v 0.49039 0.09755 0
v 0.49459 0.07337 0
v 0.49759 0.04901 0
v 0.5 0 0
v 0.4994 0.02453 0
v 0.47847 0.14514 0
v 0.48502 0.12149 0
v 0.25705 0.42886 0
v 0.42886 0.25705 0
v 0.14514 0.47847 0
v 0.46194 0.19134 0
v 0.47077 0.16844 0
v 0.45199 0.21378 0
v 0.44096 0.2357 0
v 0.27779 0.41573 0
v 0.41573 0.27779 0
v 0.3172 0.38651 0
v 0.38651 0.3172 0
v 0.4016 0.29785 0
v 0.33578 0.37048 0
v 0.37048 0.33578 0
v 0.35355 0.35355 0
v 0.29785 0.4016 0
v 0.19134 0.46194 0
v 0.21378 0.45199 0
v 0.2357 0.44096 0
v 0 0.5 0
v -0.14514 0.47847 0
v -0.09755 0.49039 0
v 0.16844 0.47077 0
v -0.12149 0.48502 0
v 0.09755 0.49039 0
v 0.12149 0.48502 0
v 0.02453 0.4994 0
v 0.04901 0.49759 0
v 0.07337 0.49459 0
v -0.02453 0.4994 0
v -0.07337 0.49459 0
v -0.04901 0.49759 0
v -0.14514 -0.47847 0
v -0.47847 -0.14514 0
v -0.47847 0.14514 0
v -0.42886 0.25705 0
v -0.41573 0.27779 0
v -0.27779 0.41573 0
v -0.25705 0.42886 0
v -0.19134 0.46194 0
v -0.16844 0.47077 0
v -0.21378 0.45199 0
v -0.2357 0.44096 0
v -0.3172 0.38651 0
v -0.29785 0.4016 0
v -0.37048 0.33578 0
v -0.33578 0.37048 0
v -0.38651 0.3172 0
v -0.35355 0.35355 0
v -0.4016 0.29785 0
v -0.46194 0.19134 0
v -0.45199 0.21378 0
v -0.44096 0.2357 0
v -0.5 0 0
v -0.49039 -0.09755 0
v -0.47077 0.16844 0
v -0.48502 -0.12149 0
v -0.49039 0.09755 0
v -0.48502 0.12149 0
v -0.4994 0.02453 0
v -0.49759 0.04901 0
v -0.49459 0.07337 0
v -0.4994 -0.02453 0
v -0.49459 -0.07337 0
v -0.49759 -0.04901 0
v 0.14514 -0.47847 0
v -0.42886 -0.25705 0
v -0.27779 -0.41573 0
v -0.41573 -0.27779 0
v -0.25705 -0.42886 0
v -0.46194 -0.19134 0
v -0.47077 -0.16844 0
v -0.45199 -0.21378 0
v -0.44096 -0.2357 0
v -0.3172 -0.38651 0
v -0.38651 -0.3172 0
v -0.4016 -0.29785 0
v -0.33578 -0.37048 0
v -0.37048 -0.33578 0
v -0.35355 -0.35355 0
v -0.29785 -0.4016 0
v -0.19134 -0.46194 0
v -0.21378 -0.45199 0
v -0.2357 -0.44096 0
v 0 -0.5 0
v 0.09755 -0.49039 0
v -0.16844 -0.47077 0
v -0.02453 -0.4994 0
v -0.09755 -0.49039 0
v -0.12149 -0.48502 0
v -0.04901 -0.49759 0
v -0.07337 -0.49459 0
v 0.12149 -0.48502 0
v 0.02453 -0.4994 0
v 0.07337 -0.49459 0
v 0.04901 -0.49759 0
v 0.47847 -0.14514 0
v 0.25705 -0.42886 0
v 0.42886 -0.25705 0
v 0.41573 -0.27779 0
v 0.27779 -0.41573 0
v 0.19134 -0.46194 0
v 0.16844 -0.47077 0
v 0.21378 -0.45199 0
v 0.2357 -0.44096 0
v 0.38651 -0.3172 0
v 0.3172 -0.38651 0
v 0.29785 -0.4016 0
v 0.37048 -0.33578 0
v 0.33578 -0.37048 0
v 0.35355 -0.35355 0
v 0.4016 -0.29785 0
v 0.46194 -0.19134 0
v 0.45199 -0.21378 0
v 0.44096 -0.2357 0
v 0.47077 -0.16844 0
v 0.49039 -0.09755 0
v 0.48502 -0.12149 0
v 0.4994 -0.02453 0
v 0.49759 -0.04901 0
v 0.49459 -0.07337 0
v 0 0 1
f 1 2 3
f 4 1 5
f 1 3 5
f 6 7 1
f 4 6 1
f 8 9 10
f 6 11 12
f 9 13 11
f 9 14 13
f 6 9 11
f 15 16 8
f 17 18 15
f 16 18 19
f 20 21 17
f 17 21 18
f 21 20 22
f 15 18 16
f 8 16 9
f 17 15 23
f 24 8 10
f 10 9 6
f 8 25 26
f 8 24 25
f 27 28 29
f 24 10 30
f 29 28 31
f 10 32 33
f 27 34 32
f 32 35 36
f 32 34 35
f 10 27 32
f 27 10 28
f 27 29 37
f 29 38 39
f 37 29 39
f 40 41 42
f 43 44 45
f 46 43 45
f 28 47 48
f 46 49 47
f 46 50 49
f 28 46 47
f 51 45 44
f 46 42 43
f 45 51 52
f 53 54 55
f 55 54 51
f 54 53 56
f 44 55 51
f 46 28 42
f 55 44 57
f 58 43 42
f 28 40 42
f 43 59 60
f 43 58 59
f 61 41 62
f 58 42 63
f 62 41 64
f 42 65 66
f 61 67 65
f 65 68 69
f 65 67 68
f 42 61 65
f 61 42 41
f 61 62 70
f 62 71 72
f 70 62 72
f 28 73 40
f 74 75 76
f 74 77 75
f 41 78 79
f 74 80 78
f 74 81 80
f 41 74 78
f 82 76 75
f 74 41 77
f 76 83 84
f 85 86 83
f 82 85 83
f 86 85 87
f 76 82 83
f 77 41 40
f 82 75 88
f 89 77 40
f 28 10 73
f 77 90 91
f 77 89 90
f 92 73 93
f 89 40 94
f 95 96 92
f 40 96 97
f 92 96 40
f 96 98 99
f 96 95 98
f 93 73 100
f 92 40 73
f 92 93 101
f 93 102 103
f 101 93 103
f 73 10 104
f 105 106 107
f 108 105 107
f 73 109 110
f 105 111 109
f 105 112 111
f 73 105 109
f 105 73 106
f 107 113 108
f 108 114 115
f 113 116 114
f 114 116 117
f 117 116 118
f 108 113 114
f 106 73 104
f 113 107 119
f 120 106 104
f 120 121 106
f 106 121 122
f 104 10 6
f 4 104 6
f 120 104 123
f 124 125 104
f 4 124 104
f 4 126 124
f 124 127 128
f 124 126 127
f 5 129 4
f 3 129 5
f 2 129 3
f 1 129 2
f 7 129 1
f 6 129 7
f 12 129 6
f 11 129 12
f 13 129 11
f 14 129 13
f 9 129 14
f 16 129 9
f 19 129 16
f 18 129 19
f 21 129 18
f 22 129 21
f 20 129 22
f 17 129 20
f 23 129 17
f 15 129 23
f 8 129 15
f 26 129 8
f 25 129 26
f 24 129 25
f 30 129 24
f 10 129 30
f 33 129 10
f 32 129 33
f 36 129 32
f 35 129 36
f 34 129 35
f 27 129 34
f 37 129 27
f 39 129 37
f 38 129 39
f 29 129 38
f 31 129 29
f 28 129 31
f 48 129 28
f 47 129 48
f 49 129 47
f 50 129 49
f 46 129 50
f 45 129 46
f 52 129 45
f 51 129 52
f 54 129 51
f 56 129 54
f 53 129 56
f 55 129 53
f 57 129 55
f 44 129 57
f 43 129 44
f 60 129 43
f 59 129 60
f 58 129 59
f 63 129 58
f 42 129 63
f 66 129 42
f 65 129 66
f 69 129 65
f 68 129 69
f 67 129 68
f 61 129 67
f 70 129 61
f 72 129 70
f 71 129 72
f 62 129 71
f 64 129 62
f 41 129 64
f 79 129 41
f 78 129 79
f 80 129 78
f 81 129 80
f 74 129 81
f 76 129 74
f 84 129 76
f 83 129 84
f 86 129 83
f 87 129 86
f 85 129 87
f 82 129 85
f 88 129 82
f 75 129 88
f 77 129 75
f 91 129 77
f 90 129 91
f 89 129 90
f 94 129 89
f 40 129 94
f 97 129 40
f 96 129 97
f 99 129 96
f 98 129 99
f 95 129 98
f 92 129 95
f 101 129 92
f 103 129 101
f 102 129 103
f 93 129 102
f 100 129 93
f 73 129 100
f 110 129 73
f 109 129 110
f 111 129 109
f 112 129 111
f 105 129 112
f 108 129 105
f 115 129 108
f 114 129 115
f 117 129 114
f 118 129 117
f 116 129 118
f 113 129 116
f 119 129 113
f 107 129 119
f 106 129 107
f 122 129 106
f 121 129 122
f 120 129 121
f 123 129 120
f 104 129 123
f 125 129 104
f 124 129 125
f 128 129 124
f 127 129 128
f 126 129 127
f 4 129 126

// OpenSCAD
// Cone for Basic Shapes
// by Slashee the Cow

$fn = 128;
linear_extrude(1, scale = 0)
    circle(d=1);
